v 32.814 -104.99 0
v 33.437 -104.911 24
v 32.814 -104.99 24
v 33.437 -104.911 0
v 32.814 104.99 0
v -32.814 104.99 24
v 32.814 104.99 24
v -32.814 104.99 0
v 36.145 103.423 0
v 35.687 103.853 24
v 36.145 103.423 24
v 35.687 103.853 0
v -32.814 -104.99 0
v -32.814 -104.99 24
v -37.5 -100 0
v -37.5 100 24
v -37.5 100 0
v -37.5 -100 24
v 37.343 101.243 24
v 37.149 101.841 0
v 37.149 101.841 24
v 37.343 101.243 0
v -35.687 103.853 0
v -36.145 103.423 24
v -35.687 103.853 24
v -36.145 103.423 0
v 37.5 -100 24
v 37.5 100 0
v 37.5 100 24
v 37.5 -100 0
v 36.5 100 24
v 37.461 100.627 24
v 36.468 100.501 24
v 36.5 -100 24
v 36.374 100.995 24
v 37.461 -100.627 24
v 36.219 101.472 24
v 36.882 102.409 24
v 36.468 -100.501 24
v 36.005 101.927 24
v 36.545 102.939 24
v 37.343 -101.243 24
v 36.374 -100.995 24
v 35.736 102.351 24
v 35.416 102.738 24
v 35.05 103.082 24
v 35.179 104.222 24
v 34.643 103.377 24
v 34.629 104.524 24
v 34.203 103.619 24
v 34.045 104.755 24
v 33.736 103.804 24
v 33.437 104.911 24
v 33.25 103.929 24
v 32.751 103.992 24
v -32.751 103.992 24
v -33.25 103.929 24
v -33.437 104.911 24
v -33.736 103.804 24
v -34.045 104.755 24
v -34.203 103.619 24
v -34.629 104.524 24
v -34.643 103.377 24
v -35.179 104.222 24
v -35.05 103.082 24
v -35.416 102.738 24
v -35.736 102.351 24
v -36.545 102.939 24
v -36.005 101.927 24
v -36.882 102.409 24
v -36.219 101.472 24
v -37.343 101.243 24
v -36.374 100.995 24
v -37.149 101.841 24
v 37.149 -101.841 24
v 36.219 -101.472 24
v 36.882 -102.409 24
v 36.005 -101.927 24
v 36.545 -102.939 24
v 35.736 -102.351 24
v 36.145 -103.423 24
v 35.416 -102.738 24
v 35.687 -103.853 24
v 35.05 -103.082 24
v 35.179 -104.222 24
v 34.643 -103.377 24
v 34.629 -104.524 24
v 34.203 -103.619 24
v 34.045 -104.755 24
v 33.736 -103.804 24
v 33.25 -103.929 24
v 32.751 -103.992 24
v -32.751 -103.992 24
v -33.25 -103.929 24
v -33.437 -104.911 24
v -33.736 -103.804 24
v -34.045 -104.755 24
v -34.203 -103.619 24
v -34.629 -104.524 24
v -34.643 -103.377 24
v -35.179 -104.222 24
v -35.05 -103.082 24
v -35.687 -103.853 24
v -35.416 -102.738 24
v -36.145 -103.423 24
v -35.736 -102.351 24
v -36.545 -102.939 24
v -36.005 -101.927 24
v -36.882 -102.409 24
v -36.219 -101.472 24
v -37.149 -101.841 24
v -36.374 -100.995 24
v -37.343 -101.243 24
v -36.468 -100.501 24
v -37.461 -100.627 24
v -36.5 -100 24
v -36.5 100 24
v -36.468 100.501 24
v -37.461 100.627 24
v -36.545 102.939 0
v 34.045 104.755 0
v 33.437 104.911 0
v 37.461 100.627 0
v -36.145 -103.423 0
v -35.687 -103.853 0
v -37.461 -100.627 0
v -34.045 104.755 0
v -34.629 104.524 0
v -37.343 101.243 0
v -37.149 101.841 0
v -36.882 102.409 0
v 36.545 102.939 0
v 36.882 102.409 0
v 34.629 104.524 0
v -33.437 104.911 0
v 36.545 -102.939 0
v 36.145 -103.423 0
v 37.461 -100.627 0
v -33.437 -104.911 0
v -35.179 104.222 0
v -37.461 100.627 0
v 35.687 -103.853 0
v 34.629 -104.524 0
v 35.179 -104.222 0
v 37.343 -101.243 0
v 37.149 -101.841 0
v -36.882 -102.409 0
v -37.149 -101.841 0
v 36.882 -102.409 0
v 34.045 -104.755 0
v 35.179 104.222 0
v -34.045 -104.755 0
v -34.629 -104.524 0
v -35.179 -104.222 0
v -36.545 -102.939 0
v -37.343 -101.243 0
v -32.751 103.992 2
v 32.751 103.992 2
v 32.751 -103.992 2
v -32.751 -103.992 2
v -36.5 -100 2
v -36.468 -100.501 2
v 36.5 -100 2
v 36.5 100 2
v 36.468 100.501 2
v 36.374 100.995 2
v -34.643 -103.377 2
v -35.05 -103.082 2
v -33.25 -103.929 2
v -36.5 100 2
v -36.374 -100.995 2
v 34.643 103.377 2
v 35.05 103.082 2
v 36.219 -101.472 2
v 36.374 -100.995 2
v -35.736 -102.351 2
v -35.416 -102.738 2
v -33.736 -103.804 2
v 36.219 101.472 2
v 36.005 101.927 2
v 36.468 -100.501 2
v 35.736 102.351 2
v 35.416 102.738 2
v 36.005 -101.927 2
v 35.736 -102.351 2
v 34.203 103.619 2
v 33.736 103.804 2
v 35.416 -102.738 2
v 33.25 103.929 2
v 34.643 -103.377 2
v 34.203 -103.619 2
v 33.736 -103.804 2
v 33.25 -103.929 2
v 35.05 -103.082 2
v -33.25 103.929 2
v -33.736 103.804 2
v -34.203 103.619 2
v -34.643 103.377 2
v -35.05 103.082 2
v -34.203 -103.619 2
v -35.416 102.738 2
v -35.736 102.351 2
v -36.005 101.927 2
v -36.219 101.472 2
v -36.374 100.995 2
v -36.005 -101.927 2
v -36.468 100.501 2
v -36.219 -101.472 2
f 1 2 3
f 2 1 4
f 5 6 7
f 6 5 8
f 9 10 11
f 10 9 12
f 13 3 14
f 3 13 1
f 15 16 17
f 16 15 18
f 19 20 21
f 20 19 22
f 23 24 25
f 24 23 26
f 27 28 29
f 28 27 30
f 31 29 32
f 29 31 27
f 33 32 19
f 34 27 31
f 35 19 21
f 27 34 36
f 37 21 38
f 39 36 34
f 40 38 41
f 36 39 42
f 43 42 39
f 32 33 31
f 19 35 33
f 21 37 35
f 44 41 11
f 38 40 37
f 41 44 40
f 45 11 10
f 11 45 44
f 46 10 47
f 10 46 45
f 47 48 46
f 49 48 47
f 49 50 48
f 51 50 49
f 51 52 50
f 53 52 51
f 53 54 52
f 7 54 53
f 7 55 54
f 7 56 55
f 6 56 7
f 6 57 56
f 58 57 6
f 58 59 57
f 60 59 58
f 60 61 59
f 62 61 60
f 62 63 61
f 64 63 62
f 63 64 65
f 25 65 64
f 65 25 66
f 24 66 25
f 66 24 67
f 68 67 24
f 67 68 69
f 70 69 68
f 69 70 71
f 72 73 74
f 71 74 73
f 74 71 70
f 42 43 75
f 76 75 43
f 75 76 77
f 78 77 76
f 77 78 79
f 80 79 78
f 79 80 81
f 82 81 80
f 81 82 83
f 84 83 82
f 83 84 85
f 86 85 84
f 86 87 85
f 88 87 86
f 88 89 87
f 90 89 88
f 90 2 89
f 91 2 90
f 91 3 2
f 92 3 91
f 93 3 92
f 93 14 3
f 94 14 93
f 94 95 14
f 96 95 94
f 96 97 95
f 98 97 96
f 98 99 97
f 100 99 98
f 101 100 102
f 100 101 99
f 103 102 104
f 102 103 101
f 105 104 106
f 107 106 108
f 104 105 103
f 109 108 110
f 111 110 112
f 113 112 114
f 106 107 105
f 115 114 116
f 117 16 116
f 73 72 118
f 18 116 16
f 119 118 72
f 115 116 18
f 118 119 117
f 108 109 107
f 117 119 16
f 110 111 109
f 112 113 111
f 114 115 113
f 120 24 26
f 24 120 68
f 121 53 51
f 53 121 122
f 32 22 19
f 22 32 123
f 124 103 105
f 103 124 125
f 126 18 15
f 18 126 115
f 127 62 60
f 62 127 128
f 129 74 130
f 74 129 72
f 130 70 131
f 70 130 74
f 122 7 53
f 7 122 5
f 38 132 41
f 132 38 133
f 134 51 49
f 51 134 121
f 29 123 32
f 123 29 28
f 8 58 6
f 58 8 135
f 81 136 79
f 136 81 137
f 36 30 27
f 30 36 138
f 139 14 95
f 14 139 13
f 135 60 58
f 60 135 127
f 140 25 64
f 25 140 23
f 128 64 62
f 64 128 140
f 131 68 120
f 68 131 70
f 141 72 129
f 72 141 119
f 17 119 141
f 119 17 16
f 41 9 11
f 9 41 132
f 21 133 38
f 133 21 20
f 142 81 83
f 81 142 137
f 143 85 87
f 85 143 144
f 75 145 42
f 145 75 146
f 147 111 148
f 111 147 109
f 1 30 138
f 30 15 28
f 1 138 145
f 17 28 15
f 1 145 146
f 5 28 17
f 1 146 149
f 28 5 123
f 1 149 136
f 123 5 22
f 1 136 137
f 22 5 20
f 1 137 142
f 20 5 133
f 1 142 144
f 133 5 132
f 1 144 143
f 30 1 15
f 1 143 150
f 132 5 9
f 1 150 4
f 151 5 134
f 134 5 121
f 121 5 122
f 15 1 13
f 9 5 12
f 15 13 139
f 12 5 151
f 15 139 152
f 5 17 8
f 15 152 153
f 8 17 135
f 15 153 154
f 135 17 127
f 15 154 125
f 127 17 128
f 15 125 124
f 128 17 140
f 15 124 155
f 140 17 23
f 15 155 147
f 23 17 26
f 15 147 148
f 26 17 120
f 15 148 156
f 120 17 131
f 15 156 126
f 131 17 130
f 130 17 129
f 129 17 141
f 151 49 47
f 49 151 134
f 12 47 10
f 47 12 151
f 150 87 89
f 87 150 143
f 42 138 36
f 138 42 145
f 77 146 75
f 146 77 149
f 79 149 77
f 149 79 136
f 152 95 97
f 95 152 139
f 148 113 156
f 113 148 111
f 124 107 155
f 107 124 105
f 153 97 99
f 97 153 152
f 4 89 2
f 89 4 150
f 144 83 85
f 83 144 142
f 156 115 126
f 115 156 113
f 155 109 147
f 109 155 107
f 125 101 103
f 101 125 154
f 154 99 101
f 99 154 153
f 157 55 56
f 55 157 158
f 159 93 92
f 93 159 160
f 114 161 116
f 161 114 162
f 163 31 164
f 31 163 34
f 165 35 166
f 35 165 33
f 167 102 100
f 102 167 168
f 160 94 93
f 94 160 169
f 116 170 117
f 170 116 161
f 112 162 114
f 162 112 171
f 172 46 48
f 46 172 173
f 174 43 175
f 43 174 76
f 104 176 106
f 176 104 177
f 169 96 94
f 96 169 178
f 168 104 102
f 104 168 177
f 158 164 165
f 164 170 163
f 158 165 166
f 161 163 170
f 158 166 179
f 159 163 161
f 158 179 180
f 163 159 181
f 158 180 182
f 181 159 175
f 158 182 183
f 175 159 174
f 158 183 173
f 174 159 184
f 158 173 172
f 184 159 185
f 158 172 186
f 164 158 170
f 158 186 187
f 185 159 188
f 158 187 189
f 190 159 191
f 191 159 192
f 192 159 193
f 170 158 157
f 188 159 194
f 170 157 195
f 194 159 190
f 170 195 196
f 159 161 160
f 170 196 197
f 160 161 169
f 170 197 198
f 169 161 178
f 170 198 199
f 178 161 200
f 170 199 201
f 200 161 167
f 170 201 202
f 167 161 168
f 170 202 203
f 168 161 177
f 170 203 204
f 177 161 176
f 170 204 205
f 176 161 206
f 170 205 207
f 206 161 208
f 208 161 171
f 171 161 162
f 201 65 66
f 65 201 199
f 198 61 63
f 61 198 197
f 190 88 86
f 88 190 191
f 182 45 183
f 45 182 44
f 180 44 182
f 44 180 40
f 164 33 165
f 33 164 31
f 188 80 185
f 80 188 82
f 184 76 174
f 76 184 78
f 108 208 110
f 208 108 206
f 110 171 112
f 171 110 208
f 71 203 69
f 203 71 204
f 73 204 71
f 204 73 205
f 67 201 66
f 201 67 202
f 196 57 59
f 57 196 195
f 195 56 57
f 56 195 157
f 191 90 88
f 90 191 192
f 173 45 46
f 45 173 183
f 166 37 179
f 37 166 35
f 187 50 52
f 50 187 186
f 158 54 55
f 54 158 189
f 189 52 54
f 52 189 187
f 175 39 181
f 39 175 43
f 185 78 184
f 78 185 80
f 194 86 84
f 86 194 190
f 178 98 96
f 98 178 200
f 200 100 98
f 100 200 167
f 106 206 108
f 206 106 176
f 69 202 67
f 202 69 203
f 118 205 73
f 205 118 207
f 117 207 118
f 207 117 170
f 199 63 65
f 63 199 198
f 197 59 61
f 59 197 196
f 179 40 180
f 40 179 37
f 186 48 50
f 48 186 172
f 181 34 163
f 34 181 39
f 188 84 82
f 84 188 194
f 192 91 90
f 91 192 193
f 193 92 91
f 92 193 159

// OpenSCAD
$fn = 50;


difference() {
	union() {
		hull() {
			translate(v = [-32.5000000000, 100.0000000000, 0]) {
				cylinder(h = 24, r = 5);
			}
			translate(v = [32.5000000000, 100.0000000000, 0]) {
				cylinder(h = 24, r = 5);
			}
			translate(v = [-32.5000000000, -100.0000000000, 0]) {
				cylinder(h = 24, r = 5);
			}
			translate(v = [32.5000000000, -100.0000000000, 0]) {
				cylinder(h = 24, r = 5);
			}
		}
	}
	union() {
		translate(v = [0, 0, 2]) {
			hull() {
				translate(v = [-32.5000000000, 100.0000000000, 0]) {
					cylinder(h = 22, r = 4);
				}
				translate(v = [32.5000000000, 100.0000000000, 0]) {
					cylinder(h = 22, r = 4);
				}
				translate(v = [-32.5000000000, -100.0000000000, 0]) {
					cylinder(h = 22, r = 4);
				}
				translate(v = [32.5000000000, -100.0000000000, 0]) {
					cylinder(h = 22, r = 4);
				}
			}
		}
	}
}
